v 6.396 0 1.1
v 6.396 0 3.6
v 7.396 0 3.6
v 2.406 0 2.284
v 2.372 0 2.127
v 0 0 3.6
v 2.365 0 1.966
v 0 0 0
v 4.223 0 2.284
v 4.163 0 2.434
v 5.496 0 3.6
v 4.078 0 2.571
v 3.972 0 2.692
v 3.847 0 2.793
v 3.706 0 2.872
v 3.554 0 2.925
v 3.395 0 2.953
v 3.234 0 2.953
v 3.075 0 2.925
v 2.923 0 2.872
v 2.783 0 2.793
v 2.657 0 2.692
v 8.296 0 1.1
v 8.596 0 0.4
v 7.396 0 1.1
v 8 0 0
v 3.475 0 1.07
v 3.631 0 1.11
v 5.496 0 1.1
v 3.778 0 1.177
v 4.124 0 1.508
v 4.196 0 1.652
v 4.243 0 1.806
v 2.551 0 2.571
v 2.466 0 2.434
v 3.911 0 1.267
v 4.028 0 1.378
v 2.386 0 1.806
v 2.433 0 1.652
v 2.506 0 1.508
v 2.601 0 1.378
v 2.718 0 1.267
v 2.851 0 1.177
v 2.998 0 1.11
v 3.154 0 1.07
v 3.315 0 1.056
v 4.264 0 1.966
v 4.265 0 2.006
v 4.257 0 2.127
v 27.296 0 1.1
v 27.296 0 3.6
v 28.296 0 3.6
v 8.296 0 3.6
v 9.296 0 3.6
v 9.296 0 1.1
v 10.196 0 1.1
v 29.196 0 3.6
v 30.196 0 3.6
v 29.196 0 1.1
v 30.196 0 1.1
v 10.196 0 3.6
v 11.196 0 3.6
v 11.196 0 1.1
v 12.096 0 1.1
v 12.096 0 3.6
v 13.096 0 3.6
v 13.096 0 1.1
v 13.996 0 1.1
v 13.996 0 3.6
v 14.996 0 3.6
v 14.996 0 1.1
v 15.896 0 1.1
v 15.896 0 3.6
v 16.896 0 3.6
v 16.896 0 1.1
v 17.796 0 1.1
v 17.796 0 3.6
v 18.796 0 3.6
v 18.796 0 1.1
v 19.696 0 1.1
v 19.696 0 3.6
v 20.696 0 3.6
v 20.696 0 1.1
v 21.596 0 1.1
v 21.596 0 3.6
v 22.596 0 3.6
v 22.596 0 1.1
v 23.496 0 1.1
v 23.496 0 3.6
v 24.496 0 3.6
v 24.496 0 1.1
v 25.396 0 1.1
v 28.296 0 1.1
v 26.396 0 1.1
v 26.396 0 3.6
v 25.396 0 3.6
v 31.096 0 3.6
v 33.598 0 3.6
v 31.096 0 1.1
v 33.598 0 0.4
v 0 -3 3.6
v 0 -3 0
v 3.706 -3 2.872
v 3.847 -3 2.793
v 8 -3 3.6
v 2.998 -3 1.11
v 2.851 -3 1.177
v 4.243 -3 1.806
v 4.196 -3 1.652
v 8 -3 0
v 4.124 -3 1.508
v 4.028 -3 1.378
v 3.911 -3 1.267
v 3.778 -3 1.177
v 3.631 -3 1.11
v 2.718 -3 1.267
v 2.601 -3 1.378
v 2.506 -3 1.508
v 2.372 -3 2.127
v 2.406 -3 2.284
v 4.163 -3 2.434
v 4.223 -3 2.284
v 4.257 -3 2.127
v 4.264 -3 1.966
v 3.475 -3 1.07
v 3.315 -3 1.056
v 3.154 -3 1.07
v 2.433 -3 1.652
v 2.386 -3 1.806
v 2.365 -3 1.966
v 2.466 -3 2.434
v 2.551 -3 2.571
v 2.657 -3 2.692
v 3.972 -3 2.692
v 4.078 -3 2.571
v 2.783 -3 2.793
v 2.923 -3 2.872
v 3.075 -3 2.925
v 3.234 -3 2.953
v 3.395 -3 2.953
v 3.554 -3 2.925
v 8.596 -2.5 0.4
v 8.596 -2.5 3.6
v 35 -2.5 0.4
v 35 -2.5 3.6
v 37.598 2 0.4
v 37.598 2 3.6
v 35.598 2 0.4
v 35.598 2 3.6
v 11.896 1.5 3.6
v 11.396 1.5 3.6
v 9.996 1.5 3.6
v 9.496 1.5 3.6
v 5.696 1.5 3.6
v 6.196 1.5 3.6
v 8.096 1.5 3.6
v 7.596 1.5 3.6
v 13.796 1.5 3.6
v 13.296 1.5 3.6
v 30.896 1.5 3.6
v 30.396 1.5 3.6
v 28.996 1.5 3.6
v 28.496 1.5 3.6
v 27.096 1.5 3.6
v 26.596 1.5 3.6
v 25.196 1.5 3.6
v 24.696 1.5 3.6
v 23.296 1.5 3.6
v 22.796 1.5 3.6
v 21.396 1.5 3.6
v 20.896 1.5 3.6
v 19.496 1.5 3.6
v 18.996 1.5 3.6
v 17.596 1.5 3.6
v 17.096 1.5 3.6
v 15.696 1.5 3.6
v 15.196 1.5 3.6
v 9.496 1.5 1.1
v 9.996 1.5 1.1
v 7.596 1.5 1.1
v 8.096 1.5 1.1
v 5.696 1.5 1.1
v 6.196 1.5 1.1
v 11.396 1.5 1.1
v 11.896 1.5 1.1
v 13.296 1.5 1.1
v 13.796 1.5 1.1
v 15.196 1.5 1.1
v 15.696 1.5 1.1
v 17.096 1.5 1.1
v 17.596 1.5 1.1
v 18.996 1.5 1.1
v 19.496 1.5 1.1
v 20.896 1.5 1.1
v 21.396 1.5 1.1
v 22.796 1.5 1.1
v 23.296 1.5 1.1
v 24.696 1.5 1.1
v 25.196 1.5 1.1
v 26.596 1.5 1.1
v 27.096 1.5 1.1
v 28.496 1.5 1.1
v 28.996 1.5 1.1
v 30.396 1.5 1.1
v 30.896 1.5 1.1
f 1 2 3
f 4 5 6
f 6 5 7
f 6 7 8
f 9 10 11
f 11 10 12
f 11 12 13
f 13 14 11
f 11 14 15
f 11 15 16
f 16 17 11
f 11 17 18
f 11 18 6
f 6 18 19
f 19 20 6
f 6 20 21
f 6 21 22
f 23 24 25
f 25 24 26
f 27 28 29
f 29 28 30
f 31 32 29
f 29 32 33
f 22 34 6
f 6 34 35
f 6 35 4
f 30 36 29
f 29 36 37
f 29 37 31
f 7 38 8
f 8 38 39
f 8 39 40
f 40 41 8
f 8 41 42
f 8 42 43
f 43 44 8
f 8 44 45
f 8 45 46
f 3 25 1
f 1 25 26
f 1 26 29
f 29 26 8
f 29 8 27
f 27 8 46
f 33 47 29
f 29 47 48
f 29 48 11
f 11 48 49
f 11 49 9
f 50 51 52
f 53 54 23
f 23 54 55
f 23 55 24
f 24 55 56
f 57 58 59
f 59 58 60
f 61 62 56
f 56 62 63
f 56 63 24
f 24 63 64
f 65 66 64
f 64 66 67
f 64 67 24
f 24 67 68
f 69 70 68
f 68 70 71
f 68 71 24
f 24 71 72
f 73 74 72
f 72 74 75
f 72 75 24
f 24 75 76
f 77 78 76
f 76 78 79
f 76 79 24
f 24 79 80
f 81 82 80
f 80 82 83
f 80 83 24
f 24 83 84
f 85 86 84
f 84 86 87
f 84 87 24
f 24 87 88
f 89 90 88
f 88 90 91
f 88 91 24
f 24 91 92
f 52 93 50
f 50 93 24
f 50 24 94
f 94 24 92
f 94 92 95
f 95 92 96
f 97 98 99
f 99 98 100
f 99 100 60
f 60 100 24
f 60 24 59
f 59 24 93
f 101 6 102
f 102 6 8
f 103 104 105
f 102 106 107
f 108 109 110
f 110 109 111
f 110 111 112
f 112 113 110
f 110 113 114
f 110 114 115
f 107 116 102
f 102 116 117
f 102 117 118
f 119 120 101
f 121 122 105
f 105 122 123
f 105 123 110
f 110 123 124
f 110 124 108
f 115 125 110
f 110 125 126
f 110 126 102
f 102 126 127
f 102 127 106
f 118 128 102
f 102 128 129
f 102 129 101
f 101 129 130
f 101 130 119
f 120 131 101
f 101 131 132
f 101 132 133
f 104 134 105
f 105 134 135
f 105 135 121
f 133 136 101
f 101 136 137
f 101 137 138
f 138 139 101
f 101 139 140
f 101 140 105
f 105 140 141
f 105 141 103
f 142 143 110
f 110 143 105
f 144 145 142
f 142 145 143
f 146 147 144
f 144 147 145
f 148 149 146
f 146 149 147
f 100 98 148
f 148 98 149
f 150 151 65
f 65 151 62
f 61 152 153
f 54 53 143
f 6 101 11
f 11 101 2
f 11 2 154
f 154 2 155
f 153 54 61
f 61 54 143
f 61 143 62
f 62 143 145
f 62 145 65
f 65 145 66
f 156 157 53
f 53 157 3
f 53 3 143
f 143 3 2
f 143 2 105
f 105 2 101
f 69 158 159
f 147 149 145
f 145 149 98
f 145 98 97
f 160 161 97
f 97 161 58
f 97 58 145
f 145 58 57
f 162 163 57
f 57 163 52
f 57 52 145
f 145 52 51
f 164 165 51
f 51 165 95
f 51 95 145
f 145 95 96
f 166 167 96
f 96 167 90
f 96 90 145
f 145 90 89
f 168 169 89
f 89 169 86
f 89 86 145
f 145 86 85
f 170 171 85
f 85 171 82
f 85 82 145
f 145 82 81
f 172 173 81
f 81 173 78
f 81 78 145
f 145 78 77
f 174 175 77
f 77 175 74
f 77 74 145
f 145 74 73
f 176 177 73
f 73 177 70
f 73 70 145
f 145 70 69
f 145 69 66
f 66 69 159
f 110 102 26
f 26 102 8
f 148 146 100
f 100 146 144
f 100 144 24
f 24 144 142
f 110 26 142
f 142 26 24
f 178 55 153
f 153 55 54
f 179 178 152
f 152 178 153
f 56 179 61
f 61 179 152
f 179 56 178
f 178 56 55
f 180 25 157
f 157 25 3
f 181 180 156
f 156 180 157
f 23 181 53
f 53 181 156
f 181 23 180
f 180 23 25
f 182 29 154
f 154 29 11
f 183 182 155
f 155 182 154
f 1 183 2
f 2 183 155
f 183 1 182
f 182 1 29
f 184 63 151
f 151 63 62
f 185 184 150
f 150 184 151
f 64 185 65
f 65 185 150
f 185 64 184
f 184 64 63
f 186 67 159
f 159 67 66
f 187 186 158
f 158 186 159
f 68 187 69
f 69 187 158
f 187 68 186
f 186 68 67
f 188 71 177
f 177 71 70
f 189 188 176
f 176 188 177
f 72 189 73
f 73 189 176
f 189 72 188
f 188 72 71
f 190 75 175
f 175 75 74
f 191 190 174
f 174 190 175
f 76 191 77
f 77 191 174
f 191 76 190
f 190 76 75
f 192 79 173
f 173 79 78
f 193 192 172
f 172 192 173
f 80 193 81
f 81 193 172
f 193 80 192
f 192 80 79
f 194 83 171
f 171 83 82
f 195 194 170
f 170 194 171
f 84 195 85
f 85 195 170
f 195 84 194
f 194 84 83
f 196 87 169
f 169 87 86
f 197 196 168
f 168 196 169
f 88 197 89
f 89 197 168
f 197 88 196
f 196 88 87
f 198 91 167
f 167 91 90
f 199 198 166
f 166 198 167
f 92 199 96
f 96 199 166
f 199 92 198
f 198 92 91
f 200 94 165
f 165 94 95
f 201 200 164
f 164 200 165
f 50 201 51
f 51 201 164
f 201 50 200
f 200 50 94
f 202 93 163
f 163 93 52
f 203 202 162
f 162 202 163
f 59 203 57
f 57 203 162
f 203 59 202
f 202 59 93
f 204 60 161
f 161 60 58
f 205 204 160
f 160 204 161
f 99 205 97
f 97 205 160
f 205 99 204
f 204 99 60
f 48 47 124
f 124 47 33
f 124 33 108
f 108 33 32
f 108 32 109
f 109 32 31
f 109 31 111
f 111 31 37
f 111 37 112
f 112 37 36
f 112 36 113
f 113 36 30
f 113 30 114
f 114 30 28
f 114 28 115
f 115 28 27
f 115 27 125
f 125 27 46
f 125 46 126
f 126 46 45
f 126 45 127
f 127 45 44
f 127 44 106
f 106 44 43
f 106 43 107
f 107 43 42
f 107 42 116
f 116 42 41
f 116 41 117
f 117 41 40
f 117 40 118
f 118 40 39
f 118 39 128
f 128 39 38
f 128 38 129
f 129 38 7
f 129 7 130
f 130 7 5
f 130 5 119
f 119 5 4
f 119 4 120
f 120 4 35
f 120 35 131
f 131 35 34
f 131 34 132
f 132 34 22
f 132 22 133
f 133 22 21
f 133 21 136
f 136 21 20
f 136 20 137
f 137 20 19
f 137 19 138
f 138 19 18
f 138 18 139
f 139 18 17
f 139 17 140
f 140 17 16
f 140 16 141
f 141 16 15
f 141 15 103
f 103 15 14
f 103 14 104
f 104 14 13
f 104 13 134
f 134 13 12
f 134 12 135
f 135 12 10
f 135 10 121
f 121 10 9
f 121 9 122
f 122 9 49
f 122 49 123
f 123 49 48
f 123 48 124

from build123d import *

# Parameters (mm, degrees)
P_IDAT_VYSUNUT_M1_DEPTH       = 3.6
ODEBRAT_VYSUNUT_M1_DEPTH      = 3
ODEBRAT_VYSUNUT_M1_DEPTH_BACK = 4
P_IDAT_VYSUNUT_M2_DEPTH       = 2.5
LINPOLE1_COUNT                = 12
LINPOLE1_PITCH                = 1.9
LINPOLE1_COL_COUNT            = 3
LINPOLE1_COL_PITCH            = 1.9
SKICA5_R                      = 0.95
ODEBRAT_VYSUNUT_M2_DEPTH      = 5


with BuildPart() as part:
    # Skica1 → Přidat vysunutím1 (new body)
    with BuildSketch(Plane.XY):
        Polygon((0, 0), (0, -3), (8, -3), (8.595876796, -2.5), (35, -2.5), (37.598076211, 2), (35.598076211, 2), (33.598076211, 0), align=None)
    extrude(amount=P_IDAT_VYSUNUT_M1_DEPTH)

    # Skica2 → Odebrat vysunutím1 (cut, two sides)
    with BuildSketch(Plane(origin=(0, 0, 0), x_dir=(1, 0, 0), z_dir=(0, 1, 0))) as odebrat_vysunut_m1_sk:
        Polygon((8, 0), (8.595876796, -0.4), (37.598076211, -0.4), (37.598076211, 0), align=None)
    extrude(amount=ODEBRAT_VYSUNUT_M1_DEPTH, mode=Mode.SUBTRACT)
    extrude(odebrat_vysunut_m1_sk.sketch, amount=-ODEBRAT_VYSUNUT_M1_DEPTH_BACK, mode=Mode.SUBTRACT)

    # Skica3 → Přidat vysunutím2 (add)
    with BuildSketch(Plane(origin=(0, -4.2, 3.6), x_dir=(1, 0, 0), z_dir=(0, 0, -1))):
        Polygon((9.295876796, -4.2), (10.195876796, -4.2), (9.995876796, -5.7), (9.495876796, -5.7), align=None)
    p_idat_vysunut_m2 = extrude(amount=P_IDAT_VYSUNUT_M2_DEPTH)

    # LinPole1: Přidat vysunutím2 ×12
    with Locations(*[(i * LINPOLE1_PITCH, 0, 0) for i in range(1, LINPOLE1_COUNT)]):
        add(p_idat_vysunut_m2)

    # LinPole1 col: Přidat vysunutím2 ×3
    with Locations(*[(-i * LINPOLE1_COL_PITCH, 0, 0) for i in range(1, LINPOLE1_COL_COUNT)]):
        add(p_idat_vysunut_m2)

    # Skica5 → Odebrat vysunutím2 (cut)
    with BuildSketch(Plane.XZ.offset(3)):
        with Locations((3.314552363, 2.006068977)):
            Circle(SKICA5_R)
    extrude(amount=-ODEBRAT_VYSUNUT_M2_DEPTH, mode=Mode.SUBTRACT)


solid = part.part
